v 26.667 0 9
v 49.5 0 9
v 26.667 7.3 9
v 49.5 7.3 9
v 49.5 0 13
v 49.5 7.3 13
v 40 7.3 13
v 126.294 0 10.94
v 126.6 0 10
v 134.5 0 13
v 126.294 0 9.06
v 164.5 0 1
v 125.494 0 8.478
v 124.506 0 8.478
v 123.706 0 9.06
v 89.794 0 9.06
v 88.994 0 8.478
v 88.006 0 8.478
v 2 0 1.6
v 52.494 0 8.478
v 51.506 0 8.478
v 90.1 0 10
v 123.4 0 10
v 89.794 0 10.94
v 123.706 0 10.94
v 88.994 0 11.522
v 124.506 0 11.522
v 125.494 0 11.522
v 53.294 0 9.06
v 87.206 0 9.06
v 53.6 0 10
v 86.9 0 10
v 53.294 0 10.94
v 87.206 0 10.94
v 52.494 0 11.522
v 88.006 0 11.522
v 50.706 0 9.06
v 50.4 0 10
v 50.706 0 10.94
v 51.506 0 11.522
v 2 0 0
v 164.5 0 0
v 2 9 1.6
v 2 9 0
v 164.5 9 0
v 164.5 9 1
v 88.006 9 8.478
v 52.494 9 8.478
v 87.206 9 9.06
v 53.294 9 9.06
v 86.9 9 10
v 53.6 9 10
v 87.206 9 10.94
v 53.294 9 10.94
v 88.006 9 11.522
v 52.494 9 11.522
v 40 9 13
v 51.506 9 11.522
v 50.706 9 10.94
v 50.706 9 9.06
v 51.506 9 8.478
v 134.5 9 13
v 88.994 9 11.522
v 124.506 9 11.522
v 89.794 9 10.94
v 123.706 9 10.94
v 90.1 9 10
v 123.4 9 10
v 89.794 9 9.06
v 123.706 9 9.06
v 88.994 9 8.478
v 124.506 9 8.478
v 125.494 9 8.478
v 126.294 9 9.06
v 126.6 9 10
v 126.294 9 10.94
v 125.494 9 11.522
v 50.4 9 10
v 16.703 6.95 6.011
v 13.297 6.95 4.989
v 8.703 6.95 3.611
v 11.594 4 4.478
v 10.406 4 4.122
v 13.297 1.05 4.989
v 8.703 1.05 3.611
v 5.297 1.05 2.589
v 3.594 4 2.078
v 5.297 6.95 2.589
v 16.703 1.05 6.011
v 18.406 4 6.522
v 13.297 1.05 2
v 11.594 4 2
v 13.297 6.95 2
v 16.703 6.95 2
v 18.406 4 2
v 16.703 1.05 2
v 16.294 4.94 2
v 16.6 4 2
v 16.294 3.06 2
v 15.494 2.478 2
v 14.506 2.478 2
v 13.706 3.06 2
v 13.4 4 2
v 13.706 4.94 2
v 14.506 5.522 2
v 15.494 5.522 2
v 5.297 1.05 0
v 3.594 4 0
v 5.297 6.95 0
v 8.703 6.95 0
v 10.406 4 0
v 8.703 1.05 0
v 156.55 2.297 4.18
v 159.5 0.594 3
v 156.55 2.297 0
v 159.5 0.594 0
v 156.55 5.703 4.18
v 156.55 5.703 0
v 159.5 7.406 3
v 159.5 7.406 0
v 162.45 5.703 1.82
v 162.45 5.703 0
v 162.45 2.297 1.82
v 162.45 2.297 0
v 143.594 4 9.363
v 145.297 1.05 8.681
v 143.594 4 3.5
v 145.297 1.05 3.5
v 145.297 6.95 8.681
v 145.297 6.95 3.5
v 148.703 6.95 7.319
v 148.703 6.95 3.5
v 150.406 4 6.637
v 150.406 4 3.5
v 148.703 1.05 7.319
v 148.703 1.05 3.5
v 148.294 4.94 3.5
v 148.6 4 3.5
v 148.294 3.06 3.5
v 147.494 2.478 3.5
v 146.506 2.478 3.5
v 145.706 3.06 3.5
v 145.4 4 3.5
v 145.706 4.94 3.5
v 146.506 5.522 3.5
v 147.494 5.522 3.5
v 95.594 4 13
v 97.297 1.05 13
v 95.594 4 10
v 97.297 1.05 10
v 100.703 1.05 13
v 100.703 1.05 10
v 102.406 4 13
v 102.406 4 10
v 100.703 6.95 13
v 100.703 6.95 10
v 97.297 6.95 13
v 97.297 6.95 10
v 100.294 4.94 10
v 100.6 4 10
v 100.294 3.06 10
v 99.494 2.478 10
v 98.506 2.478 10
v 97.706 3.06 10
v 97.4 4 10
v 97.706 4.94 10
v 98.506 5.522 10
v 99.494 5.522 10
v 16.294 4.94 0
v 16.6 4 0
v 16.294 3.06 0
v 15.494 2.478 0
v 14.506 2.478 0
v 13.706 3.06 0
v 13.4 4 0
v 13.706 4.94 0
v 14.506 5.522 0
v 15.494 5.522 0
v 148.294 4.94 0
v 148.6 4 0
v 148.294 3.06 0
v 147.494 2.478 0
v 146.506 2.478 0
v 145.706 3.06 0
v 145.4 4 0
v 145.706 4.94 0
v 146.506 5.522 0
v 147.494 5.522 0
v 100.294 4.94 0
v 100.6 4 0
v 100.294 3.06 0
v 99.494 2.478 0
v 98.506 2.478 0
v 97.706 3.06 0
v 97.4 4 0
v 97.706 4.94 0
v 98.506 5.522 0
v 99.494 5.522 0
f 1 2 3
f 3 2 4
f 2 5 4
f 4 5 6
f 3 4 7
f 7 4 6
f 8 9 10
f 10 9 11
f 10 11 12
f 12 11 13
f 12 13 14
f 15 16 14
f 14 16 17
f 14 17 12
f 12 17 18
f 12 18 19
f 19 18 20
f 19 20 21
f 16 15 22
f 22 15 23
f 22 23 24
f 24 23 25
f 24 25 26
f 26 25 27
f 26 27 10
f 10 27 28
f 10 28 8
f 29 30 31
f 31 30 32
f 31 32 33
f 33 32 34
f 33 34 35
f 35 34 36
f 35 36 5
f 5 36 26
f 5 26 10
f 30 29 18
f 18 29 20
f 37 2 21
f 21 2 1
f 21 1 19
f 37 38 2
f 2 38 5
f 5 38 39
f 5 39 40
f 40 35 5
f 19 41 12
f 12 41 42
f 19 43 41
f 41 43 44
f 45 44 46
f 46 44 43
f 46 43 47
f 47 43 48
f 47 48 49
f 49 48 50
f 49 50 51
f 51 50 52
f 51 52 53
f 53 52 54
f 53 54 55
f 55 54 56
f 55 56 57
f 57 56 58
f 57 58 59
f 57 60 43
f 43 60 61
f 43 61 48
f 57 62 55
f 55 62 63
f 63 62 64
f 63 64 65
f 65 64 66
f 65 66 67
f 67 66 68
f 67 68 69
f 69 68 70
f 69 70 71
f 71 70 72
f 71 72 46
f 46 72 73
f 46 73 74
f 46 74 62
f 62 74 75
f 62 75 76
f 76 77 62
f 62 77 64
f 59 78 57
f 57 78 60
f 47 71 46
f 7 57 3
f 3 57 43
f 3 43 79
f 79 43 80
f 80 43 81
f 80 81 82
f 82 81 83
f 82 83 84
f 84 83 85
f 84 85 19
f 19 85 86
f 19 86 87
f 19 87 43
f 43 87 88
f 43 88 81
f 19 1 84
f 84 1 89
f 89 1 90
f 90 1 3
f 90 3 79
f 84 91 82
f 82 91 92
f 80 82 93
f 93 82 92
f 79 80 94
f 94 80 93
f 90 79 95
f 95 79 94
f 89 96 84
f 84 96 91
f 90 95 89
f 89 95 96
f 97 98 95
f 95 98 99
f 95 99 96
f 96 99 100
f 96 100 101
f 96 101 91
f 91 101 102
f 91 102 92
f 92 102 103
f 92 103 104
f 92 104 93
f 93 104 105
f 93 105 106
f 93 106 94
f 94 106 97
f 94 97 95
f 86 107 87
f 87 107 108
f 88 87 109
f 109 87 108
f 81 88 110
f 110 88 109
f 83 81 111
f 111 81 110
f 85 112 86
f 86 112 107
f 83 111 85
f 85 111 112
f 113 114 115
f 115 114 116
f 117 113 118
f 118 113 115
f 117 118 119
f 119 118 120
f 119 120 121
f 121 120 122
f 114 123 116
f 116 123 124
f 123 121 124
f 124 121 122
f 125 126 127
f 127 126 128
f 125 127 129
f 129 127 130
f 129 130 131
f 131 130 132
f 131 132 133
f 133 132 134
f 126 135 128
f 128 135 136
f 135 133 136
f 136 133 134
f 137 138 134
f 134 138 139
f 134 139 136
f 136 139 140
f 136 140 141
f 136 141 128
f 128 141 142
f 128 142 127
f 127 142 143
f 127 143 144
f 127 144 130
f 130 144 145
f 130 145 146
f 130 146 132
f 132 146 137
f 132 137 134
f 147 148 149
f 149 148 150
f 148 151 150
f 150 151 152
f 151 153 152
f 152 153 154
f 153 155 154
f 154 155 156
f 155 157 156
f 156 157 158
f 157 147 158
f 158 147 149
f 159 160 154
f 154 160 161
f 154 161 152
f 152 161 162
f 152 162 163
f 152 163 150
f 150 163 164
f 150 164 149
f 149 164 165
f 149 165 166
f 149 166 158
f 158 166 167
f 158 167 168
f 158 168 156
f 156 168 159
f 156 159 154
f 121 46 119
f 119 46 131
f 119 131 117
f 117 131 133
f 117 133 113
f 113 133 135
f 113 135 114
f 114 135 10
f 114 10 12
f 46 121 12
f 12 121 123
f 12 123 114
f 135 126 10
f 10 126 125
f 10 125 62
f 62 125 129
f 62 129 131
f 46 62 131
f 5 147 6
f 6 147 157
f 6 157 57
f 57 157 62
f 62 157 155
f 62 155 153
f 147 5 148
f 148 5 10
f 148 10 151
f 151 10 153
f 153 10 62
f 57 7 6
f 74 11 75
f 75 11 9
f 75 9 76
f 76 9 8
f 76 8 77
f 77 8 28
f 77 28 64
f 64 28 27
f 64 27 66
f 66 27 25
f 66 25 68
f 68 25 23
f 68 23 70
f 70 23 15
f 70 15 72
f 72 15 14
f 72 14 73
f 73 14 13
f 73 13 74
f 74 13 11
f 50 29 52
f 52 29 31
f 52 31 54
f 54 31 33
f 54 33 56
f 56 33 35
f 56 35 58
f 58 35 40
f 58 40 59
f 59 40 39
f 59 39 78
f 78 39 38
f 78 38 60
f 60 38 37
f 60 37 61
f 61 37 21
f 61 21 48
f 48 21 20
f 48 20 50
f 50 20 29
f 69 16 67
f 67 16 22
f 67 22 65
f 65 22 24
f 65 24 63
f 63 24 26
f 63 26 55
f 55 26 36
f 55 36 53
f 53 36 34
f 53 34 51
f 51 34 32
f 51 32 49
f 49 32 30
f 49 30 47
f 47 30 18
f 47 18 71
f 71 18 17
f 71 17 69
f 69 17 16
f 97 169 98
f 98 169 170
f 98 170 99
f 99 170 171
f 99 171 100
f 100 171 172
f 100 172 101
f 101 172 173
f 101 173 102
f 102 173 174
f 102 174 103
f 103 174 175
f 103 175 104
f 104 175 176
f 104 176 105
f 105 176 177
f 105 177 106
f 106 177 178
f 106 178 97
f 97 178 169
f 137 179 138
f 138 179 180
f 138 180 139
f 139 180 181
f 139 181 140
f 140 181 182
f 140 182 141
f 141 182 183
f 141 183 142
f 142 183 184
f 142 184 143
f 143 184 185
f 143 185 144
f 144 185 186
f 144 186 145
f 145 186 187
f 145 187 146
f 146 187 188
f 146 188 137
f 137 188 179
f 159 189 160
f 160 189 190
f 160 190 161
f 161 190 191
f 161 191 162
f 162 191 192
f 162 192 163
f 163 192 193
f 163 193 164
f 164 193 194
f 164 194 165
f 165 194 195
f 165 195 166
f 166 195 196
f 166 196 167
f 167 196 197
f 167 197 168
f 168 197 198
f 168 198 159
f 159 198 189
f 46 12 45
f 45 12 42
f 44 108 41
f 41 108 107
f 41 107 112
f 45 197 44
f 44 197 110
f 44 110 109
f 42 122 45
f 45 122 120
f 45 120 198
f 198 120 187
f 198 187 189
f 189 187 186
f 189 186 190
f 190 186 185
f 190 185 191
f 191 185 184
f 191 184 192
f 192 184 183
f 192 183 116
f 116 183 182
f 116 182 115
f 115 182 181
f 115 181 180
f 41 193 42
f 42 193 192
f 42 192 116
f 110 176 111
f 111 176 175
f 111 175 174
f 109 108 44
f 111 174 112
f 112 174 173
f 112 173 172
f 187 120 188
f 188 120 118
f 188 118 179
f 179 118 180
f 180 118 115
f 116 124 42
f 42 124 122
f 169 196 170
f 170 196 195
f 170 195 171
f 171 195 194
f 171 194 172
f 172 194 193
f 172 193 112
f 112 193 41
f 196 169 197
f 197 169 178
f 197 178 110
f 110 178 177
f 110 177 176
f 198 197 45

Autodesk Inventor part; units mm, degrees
ref_plane "YZ Plane" through (0, 0, 0) normal (1, 0, 0) x (0, 1, 0)
ref_plane "XZ Plane" through (0, 0, 0) normal (0, 1, 0) x (-1, 0, 0)
ref_plane "XY Plane" through (0, 0, 0) normal (0, 0, 1) x (1, 0, 0)
sketch "Sketch1" plane through (0, 0, 0) normal (0, 0, 1) x (1, 0, 0)
  line L0 (0, 0) -> (164.5, 0)
  line L1 (164.5, 0) -> (164.5, 9)
  line L2 (164.5, 9) -> (0, 9)
  line L3 (0, 9) -> (0, 0)
  circle A0 centre (99, 4) radius 1.6
  circle A1 centre (159.5, 4) radius 1.6
  circle A2 centre (147, 4) radius 1.6
  circle A3 centre (15, 4) radius 1.6
  circle A4 centre (7, 4) radius 1.6
  dimension "d1" = 9
  dimension "d2" = 90
  dimension "d6" = 3.2
  dimension "d7" = 3.2
  dimension "d9" = 60.5
  dimension "d26" = 3.2
  dimension "d27" = 48
  dimension "d28" = 3.2
  dimension "d32" = 15
  dimension "d33" = 5
  dimension "d61" = 3.2
  dimension "d62" = 8
  dimension "d63" = 12.5
  dimension "d108" = 4
  dimension "d109" = 4
  dimension "d111" = 4
  dimension "d112" = 4
  dimension "d113" = 4
ref_plane "Work Plane2" through (0, 0, 0) normal (0, -1, 0) x (1, 0, 0)
sketch "Sketch2" plane through (0, 0, 0) normal (0, -1, 0) x (1, 0, 0)
  circle A0 centre (52, 10) radius 1.6
  circle A1 centre (125, 10) radius 1.6
  circle A2 centre (88.5, 10) radius 1.6
  point P0 (0, 0)
  point P1 (52, 0)
  dimension "d13" = 3.2
  dimension "d15" = 3.2
  dimension "d17" = 3.2
  dimension "d18" = 36.5
  dimension "d64" = 52
  dimension "d65" = 36.5
  dimension "d114" = 10
  dimension "d115" = 73
ref_plane "Work Plane1" through (0, 0, 11) normal (0, 0, 1) x (1, 0, 0)
extrude "klocek" add sketch "Sketch1" along normal blind 13
ref_plane "Work Plane3" through (0, 0, 0) normal (0, -1, 0) x (1, 0, 0)
extrude "prowadzenie osi" cut sketch "Sketch2" against normal up to next
ref_plane "Work Plane4" through (0, 0, 0) normal (0, -1, 0) x (1, 0, 0)
sketch "Sketch7" plane through (0, 0, 0) normal (0, -1, 0) x (1, 0, 0)
  line L0 (0, 13) -> (0, 1)
  line L1 (0, 13) -> (164.5, 13) projected
  line L2 (0, 13) -> (40, 13)
  line L3 (40, 13) -> (0, 1)
  point P0 (0, -1.8333)
  dimension "d86" = 12
  dimension "d87" = 40
sketch "Sketch8" plane through (0, 0, 0) normal (0, -1, 0) x (1, 0, 0)
  line L0 (164.5, 0) -> (164.5, 13) projected
  line L1 (164.5, 13) -> (164.5, 1)
  line L2 (164.5, 13) -> (0, 13) projected
  line L3 (164.5, 13) -> (134.5, 13)
  line L4 (134.5, 13) -> (164.5, 1)
  point P0 (0, 0)
  point P1 (40.8333, 11)
  dimension "d80" = 12
  dimension "d81" = 30
extrude "przedni skos" cut sketch "Sketch7" against normal up to next
extrude "tylni skos" cut sketch "Sketch8" against normal up to next
ref_plane "Work Plane7" through (0, 0, 11) normal (0, 0, 1) x (1, 0, 0)
sketch "Sketch5" plane through (0, 0, 13) normal (0, 0, 1) x (1, 0, 0)
  circle A0 centre (99, 4) radius 1.6 projected
  line L0 (95.5936, 4) -> (97.2968, 6.95)
  line L1 (97.2968, 6.95) -> (100.7032, 6.95)
  line L2 (100.7032, 6.95) -> (102.4064, 4)
  line L3 (102.4064, 4) -> (100.7032, 1.05)
  line L4 (100.7032, 1.05) -> (97.2968, 1.05)
  line L5 (97.2968, 1.05) -> (95.5936, 4)
  point P0 (119.5, 5)
  dimension "d98" = 5.9
extrude "hex insert middle" cut sketch "Sketch5" against normal blind 3
ref_plane "Work Plane6" through (0, 0, 11) normal (0, 0, 1) x (1, 0, 0)
sketch "Sketch9" plane through (0, 0, 11) normal (0, 0, 1) x (1, 0, 0)
  circle A0 centre (147, 4) radius 1.6 projected
  line L0 (150.4064, 4) -> (148.7032, 1.05)
  line L1 (148.7032, 1.05) -> (145.2968, 1.05)
  line L2 (145.2968, 1.05) -> (143.5936, 4)
  line L3 (143.5936, 4) -> (145.2968, 6.95)
  line L4 (145.2968, 6.95) -> (148.7032, 6.95)
  line L5 (148.7032, 6.95) -> (150.4064, 4)
  point P0 (0, 0)
  point P1 (153, 5)
  dimension "d99" = 5.9
extrude "hex insert rear 1" cut sketch "Sketch9" against normal blind 7.5
ref_plane "Work Plane5" through (0, 0, 11) normal (0, 0, 1) x (1, 0, 0)
sketch "Sketch10" plane through (0, 0, 11) normal (0, 0, 1) x (1, 0, 0)
  circle A0 centre (159.5, 4) radius 1.6 projected
  line L0 (162.45, 5.7032) -> (162.45, 2.2968)
  line L1 (162.45, 2.2968) -> (159.5, 0.5936)
  line L2 (159.5, 0.5936) -> (156.55, 2.2968)
  line L3 (156.55, 2.2968) -> (156.55, 5.7032)
  line L4 (156.55, 5.7032) -> (159.5, 7.4064)
  line L5 (159.5, 7.4064) -> (162.45, 5.7032)
  line L6 (164.5, 0) -> (134.5, 0) projected
  point P0 (0, 0)
  dimension "d118" = 5.9
extrude "hex insert rear 2" cut sketch "Sketch10" against normal up to next contours A0 | L0 L1 L2 L3 L4 L5
sketch "Sketch13" plane through (0, 0, 11) normal (0, 0, 1) x (1, 0, 0)
  circle A0 centre (7, 4) radius 1.6 projected
  line L0 (10.4064, 4) -> (8.7032, 1.05)
  line L1 (8.7032, 1.05) -> (5.2968, 1.05)
  line L2 (5.2968, 1.05) -> (3.5936, 4)
  line L3 (3.5936, 4) -> (5.2968, 6.95)
  line L4 (5.2968, 6.95) -> (8.7032, 6.95)
  line L5 (8.7032, 6.95) -> (10.4064, 4)
  dimension "d123" = 5.9
extrude "hex insert front 1" cut sketch "Sketch13" against normal through all
sketch "Sketch16" plane through (0, 0, 11) normal (0, 0, 1) x (1, 0, 0)
  circle A0 centre (15, 4) radius 1.6 projected
  line L0 (18.4064, 4) -> (16.7032, 1.05)
  line L1 (16.7032, 1.05) -> (13.2968, 1.05)
  line L2 (13.2968, 1.05) -> (11.5936, 4)
  line L3 (11.5936, 4) -> (13.2968, 6.95)
  line L4 (13.2968, 6.95) -> (16.7032, 6.95)
  line L5 (16.7032, 6.95) -> (18.4064, 4)
  point P0 (0, 0)
  dimension "d93" = 5.9
extrude "hex insert front 2" cut sketch "Sketch16" against normal blind 9
sketch "Sketch17" plane through (0, 0, 0) normal (0, 0, -1) x (-1, 0, 0)
  line L0 (-164.5, 9) -> (0, 9) projected
  line L1 (0, 0) -> (-2, 0)
  line L2 (-2, 0) -> (-2, 9)
  line L3 (-2, 9) -> (0, 9)
  line L4 (0, 9) -> (0, 0)
  dimension "d122" = 2
extrude "ciecie przod" cut sketch "Sketch17" against normal up to next
sketch "Sketch18" plane through (40, 0, 13) normal (0, -1, 0) x (1, 0, 0)
  line L0 (9.5, 0) -> (9.5, -4)
  line L1 (9.5, -4) -> (-15.5, -4)
  line L2 (-15.5, -4) -> (-15.5, 0)
  line L3 (-15.5, 0) -> (9.5, 0)
  line L4 (94.5, 0) -> (0, 0) projected
  circle A0 centre (12, -3) radius 1.6 projected
  line L5 (-40, -13) -> (124.5, -13) projected
  point P0 (-35, -11)
  dimension "d102" = 4
  dimension "d103" = 25
  dimension "d104" = 2.5
extrude "sensor linii" cut sketch "Sketch18" against normal blind 7.3 contours L0 L1 L2 L3
properties part number "wheel_support_v5_left_narrow_with_line_sensor_2mm_higher"
